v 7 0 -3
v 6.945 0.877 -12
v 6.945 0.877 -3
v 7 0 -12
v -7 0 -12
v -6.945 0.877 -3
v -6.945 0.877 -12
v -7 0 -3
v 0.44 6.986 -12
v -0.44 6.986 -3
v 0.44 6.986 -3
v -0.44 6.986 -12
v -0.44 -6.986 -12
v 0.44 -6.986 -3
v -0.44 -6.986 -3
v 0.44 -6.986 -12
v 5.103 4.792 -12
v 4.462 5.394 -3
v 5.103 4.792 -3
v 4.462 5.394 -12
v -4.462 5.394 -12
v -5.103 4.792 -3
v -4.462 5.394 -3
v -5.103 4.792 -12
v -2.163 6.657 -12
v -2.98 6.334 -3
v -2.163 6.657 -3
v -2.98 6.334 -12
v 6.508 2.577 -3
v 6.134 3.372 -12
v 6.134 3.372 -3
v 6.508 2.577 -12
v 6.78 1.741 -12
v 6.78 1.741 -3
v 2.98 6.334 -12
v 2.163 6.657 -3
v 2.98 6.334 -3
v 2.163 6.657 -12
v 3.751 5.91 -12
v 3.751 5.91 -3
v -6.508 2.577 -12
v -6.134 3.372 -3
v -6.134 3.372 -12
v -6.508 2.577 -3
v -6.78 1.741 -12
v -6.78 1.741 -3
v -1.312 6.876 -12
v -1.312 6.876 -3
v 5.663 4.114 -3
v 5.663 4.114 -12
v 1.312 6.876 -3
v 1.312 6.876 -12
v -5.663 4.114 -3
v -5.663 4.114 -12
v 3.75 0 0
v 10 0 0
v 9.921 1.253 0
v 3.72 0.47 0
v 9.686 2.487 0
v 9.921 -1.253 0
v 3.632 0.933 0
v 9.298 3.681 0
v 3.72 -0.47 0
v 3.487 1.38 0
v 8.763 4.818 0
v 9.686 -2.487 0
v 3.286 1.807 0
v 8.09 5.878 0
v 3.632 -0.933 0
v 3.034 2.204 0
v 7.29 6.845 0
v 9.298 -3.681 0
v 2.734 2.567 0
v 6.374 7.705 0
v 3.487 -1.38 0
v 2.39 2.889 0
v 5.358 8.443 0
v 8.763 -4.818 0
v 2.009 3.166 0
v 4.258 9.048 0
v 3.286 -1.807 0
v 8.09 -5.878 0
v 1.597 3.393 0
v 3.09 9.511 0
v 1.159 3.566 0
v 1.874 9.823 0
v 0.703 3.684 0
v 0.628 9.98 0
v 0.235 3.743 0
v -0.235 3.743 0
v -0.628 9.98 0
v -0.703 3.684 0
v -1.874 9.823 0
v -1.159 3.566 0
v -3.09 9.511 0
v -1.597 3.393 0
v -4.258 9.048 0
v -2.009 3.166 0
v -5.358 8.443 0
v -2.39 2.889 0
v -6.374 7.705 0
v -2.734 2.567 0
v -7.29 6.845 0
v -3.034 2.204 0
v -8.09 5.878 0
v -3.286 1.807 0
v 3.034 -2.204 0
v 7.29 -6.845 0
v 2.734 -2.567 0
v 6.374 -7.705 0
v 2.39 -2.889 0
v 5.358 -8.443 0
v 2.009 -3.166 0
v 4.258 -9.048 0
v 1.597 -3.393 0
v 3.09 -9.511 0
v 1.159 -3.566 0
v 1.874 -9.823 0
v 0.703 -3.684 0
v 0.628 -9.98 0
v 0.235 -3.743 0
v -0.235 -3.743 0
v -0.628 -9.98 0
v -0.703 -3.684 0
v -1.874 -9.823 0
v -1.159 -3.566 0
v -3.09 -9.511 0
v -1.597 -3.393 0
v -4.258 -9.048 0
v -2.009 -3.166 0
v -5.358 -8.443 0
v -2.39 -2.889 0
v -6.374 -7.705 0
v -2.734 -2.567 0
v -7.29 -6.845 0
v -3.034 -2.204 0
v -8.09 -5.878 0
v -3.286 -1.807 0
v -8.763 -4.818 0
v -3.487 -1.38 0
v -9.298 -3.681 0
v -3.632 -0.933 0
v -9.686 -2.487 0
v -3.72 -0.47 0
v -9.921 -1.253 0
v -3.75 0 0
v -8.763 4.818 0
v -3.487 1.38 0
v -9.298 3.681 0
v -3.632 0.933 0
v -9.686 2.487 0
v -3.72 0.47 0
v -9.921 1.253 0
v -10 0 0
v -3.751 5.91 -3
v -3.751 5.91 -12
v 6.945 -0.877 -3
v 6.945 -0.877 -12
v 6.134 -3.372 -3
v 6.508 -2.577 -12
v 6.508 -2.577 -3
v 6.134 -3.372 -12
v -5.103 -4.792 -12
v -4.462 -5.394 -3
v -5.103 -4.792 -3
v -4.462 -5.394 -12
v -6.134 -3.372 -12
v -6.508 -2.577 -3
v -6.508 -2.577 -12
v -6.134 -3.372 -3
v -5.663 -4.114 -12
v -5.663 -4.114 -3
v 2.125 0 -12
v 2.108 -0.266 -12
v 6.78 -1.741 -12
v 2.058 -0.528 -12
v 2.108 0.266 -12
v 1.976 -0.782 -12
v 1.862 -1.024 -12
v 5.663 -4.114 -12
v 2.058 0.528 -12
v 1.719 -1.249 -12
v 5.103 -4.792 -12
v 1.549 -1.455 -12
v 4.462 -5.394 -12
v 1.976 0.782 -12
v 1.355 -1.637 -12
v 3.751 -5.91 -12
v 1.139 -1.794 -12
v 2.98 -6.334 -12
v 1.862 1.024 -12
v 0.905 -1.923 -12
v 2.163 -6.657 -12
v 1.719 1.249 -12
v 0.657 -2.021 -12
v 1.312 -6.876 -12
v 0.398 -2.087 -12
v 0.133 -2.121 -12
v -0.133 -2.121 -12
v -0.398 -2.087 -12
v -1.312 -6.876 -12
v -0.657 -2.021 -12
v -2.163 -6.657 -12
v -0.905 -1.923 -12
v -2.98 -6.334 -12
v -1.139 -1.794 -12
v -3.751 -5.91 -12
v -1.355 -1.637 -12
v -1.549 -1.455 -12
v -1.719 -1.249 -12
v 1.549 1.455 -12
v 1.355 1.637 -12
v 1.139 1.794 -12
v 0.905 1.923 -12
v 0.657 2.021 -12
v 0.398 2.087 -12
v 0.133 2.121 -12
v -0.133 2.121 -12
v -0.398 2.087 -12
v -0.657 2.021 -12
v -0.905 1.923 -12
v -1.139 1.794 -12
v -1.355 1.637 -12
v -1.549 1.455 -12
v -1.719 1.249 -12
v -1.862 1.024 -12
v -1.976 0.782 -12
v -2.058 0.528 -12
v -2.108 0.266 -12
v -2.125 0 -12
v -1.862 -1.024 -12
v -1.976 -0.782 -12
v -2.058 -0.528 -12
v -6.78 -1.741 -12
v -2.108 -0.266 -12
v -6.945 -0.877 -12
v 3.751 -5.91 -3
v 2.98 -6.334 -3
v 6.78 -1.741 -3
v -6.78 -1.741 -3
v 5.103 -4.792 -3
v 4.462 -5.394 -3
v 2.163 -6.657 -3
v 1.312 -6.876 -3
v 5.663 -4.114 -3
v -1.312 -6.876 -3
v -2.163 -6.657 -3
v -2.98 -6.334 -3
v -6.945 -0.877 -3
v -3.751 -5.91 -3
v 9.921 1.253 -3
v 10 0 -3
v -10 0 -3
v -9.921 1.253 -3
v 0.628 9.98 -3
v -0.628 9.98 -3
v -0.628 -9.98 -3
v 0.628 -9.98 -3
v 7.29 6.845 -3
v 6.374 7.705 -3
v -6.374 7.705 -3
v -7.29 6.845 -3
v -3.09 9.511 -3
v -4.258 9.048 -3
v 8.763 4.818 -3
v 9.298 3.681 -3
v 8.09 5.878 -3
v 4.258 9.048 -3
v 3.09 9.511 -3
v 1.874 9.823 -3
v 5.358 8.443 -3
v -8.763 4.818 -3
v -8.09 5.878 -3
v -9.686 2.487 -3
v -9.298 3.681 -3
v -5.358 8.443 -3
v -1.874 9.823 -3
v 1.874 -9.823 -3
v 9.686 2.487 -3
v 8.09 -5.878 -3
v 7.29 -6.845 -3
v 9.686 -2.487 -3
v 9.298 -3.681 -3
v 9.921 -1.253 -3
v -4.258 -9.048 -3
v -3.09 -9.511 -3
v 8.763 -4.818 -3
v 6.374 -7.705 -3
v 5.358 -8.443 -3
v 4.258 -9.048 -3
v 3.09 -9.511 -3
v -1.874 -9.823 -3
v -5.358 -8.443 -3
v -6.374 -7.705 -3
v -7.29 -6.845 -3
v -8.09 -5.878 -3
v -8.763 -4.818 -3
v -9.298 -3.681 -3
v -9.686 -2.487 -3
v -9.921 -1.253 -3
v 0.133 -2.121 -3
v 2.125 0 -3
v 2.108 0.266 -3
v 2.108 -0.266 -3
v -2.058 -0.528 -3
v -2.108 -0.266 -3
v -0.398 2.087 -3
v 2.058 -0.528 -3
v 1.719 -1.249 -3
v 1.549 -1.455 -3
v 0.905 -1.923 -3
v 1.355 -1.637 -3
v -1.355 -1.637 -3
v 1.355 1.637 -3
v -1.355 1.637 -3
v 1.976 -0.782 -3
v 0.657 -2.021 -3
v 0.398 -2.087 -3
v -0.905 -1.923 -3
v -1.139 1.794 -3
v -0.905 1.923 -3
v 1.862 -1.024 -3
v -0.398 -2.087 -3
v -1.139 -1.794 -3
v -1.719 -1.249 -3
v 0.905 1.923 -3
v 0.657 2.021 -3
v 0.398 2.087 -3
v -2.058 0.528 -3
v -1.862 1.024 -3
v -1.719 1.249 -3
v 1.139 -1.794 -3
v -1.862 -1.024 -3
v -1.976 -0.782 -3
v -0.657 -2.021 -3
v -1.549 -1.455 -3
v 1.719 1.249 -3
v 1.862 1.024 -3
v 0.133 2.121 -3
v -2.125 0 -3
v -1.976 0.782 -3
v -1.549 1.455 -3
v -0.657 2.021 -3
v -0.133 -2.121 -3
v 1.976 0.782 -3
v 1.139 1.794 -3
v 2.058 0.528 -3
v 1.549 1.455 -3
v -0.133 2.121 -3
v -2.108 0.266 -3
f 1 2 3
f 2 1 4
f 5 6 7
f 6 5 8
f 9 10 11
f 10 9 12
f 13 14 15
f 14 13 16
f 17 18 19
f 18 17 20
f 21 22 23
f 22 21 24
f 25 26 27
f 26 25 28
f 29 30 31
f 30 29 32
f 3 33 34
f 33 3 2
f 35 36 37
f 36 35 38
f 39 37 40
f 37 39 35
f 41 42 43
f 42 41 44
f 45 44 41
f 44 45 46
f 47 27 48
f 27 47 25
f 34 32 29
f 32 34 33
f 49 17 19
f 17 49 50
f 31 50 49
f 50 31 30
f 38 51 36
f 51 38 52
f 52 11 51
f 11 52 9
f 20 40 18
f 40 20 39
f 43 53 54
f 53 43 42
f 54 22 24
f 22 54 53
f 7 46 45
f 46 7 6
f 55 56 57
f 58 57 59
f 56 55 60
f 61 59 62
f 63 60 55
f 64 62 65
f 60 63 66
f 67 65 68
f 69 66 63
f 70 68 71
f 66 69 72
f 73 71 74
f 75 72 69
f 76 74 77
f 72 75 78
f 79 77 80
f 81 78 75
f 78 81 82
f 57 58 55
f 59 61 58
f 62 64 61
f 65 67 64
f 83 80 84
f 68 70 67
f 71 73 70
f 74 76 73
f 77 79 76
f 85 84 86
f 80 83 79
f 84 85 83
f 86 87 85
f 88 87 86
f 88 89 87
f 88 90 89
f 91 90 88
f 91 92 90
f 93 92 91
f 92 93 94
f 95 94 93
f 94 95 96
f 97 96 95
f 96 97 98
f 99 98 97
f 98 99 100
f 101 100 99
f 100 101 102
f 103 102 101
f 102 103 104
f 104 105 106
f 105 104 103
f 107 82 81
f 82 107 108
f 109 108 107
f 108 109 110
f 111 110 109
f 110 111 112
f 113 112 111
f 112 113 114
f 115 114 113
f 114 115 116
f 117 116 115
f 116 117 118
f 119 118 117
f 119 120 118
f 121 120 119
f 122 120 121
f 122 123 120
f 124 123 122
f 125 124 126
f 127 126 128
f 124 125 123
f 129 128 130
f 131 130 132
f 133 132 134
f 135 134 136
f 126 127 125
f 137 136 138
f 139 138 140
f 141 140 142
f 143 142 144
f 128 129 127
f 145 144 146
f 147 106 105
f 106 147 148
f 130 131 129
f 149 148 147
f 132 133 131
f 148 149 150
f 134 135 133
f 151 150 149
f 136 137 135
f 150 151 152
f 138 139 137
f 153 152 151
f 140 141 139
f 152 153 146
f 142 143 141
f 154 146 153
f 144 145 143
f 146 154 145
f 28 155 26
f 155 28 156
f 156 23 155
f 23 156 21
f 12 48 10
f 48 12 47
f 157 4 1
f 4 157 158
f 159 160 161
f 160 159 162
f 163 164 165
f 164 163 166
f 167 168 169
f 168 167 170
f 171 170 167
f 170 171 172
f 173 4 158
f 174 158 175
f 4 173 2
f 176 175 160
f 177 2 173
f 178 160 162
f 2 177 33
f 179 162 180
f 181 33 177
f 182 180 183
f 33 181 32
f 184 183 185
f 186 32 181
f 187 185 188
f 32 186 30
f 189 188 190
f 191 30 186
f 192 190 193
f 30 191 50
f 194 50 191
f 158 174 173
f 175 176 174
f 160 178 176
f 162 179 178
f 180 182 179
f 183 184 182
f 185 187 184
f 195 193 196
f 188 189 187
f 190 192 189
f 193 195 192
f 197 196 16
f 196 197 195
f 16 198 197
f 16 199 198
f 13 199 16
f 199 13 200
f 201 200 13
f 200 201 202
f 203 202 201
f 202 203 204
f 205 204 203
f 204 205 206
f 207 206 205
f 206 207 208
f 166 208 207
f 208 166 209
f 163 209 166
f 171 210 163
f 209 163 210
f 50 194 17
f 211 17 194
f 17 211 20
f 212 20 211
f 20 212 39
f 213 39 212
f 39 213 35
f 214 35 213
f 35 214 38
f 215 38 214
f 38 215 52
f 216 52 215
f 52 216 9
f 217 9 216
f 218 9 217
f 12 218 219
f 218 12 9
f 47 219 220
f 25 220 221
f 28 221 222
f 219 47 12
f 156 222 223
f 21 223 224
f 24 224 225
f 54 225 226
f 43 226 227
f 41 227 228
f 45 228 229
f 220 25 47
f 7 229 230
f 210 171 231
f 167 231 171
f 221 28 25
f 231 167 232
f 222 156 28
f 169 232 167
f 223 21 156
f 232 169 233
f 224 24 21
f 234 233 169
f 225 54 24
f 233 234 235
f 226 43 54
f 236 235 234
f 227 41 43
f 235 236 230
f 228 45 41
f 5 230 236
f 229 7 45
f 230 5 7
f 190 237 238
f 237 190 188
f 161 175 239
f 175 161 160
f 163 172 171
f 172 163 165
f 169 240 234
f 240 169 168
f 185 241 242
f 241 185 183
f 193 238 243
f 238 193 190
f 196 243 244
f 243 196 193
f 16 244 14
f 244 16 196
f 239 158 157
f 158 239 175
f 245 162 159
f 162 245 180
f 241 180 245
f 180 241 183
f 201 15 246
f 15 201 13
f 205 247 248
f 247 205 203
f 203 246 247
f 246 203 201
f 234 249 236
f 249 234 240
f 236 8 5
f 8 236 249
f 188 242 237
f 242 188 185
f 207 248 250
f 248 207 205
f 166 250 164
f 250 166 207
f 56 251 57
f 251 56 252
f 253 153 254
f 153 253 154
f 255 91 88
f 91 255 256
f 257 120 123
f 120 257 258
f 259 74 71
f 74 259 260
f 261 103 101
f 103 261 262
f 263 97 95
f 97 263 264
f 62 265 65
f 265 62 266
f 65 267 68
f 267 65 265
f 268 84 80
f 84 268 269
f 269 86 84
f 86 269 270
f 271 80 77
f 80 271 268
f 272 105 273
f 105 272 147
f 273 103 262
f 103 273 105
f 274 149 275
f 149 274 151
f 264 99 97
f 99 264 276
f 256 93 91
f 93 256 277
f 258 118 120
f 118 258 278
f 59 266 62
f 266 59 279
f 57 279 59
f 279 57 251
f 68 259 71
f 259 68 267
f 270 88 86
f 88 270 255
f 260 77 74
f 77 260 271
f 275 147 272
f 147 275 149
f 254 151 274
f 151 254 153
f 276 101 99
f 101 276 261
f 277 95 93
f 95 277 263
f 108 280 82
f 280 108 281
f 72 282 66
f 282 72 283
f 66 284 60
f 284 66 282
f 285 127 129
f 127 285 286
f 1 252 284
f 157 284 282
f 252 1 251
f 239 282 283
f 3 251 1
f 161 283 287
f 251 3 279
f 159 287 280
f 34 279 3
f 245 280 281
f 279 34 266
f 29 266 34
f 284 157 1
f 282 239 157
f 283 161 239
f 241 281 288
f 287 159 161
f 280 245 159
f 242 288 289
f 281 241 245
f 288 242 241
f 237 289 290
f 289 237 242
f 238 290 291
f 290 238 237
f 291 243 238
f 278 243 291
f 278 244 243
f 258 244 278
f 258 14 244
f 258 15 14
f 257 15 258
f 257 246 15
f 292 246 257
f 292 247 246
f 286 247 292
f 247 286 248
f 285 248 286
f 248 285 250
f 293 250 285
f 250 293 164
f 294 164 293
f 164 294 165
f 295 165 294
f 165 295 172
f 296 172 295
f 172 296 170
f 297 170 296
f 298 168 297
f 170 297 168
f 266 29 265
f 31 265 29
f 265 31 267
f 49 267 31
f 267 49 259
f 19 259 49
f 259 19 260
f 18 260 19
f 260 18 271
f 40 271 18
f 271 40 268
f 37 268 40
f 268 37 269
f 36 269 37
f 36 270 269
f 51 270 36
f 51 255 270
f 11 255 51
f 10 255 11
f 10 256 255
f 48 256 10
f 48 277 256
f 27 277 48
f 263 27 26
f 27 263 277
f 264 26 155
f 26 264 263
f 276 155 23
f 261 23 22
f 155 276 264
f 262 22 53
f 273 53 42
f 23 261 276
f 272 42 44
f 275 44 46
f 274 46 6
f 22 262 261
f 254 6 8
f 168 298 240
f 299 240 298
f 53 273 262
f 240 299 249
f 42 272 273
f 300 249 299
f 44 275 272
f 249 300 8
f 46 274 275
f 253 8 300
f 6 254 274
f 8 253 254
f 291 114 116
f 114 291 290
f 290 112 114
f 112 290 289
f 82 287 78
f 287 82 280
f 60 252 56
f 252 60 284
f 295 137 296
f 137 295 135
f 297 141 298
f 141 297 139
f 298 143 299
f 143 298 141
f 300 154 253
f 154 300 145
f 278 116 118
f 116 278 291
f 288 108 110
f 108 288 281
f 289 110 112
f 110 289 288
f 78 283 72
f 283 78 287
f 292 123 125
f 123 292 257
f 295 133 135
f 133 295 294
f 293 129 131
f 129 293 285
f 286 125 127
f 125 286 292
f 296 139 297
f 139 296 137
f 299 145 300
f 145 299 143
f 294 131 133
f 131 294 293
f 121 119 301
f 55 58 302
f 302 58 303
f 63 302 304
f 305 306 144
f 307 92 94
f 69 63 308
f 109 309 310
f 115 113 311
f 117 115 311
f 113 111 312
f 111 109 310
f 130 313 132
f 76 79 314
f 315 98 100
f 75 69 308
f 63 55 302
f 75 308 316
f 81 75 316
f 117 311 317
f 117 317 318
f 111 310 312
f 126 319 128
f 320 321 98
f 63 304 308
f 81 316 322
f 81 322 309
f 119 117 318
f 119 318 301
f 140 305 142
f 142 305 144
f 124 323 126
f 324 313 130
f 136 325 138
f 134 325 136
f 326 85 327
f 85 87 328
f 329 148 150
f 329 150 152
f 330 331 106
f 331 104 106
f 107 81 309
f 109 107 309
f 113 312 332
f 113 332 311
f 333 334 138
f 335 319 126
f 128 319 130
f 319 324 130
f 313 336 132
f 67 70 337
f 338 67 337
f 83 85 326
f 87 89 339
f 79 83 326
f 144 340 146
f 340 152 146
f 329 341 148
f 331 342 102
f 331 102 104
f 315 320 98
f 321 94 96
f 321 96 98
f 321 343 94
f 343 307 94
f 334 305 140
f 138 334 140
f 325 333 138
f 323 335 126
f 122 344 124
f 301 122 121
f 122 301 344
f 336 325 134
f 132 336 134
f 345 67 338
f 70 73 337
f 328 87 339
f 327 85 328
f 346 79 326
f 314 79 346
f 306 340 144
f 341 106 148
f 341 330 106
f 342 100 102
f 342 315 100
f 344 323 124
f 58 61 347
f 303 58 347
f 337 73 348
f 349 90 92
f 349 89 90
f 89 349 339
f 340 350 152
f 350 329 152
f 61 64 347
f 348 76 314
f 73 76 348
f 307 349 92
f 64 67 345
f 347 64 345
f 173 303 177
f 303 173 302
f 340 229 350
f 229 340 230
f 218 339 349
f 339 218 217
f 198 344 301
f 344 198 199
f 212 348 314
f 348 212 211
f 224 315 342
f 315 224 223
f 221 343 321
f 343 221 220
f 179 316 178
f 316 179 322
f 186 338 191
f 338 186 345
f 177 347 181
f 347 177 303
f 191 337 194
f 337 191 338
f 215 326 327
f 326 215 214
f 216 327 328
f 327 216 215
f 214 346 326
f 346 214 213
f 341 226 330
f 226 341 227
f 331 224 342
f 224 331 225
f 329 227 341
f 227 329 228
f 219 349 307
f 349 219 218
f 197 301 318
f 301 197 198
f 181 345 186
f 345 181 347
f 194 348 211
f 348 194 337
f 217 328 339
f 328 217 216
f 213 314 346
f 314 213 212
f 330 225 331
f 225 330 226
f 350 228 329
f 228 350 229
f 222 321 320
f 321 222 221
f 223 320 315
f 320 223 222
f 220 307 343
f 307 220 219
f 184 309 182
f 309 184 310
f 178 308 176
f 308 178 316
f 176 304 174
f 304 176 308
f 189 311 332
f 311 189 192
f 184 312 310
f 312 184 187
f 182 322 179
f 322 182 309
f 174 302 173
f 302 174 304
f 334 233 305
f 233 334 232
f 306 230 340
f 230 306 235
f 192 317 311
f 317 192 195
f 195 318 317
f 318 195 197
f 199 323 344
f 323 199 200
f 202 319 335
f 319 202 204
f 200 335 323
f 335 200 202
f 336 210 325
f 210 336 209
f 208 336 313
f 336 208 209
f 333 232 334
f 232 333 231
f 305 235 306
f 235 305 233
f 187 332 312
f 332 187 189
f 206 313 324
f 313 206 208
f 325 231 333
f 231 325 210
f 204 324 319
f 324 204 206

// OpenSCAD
$fn = 50;


difference() {
	union() {
		translate(v = [0, 0, -12.0000000000]) {
			cylinder(h = 12, r = 7.0000000000);
		}
		translate(v = [0, 0, -3.0000000000]) {
			cylinder(h = 3, r = 10.0000000000);
		}
	}
	union() {
		translate(v = [0, 0, 0]) {
			rotate(a = [0, 0, 0]) {
				difference() {
					union() {
						#translate(v = [0, 0, -12.0000000000]) {
							cylinder(h = 12, r = 2.0000000000);
						}
						#translate(v = [0, 0, -3]) {
							cylinder(h = 3, r1 = 2.1250000000, r2 = 3.7500000000);
						}
						#translate(v = [0, 0, -12.0000000000]) {
							cylinder(h = 12, r = 2.1250000000);
						}
						#translate(v = [0, 0, -12.0000000000]) {
							cylinder(h = 12, r = 2.0000000000);
						}
					}
					union();
				}
			}
		}
	}
}
